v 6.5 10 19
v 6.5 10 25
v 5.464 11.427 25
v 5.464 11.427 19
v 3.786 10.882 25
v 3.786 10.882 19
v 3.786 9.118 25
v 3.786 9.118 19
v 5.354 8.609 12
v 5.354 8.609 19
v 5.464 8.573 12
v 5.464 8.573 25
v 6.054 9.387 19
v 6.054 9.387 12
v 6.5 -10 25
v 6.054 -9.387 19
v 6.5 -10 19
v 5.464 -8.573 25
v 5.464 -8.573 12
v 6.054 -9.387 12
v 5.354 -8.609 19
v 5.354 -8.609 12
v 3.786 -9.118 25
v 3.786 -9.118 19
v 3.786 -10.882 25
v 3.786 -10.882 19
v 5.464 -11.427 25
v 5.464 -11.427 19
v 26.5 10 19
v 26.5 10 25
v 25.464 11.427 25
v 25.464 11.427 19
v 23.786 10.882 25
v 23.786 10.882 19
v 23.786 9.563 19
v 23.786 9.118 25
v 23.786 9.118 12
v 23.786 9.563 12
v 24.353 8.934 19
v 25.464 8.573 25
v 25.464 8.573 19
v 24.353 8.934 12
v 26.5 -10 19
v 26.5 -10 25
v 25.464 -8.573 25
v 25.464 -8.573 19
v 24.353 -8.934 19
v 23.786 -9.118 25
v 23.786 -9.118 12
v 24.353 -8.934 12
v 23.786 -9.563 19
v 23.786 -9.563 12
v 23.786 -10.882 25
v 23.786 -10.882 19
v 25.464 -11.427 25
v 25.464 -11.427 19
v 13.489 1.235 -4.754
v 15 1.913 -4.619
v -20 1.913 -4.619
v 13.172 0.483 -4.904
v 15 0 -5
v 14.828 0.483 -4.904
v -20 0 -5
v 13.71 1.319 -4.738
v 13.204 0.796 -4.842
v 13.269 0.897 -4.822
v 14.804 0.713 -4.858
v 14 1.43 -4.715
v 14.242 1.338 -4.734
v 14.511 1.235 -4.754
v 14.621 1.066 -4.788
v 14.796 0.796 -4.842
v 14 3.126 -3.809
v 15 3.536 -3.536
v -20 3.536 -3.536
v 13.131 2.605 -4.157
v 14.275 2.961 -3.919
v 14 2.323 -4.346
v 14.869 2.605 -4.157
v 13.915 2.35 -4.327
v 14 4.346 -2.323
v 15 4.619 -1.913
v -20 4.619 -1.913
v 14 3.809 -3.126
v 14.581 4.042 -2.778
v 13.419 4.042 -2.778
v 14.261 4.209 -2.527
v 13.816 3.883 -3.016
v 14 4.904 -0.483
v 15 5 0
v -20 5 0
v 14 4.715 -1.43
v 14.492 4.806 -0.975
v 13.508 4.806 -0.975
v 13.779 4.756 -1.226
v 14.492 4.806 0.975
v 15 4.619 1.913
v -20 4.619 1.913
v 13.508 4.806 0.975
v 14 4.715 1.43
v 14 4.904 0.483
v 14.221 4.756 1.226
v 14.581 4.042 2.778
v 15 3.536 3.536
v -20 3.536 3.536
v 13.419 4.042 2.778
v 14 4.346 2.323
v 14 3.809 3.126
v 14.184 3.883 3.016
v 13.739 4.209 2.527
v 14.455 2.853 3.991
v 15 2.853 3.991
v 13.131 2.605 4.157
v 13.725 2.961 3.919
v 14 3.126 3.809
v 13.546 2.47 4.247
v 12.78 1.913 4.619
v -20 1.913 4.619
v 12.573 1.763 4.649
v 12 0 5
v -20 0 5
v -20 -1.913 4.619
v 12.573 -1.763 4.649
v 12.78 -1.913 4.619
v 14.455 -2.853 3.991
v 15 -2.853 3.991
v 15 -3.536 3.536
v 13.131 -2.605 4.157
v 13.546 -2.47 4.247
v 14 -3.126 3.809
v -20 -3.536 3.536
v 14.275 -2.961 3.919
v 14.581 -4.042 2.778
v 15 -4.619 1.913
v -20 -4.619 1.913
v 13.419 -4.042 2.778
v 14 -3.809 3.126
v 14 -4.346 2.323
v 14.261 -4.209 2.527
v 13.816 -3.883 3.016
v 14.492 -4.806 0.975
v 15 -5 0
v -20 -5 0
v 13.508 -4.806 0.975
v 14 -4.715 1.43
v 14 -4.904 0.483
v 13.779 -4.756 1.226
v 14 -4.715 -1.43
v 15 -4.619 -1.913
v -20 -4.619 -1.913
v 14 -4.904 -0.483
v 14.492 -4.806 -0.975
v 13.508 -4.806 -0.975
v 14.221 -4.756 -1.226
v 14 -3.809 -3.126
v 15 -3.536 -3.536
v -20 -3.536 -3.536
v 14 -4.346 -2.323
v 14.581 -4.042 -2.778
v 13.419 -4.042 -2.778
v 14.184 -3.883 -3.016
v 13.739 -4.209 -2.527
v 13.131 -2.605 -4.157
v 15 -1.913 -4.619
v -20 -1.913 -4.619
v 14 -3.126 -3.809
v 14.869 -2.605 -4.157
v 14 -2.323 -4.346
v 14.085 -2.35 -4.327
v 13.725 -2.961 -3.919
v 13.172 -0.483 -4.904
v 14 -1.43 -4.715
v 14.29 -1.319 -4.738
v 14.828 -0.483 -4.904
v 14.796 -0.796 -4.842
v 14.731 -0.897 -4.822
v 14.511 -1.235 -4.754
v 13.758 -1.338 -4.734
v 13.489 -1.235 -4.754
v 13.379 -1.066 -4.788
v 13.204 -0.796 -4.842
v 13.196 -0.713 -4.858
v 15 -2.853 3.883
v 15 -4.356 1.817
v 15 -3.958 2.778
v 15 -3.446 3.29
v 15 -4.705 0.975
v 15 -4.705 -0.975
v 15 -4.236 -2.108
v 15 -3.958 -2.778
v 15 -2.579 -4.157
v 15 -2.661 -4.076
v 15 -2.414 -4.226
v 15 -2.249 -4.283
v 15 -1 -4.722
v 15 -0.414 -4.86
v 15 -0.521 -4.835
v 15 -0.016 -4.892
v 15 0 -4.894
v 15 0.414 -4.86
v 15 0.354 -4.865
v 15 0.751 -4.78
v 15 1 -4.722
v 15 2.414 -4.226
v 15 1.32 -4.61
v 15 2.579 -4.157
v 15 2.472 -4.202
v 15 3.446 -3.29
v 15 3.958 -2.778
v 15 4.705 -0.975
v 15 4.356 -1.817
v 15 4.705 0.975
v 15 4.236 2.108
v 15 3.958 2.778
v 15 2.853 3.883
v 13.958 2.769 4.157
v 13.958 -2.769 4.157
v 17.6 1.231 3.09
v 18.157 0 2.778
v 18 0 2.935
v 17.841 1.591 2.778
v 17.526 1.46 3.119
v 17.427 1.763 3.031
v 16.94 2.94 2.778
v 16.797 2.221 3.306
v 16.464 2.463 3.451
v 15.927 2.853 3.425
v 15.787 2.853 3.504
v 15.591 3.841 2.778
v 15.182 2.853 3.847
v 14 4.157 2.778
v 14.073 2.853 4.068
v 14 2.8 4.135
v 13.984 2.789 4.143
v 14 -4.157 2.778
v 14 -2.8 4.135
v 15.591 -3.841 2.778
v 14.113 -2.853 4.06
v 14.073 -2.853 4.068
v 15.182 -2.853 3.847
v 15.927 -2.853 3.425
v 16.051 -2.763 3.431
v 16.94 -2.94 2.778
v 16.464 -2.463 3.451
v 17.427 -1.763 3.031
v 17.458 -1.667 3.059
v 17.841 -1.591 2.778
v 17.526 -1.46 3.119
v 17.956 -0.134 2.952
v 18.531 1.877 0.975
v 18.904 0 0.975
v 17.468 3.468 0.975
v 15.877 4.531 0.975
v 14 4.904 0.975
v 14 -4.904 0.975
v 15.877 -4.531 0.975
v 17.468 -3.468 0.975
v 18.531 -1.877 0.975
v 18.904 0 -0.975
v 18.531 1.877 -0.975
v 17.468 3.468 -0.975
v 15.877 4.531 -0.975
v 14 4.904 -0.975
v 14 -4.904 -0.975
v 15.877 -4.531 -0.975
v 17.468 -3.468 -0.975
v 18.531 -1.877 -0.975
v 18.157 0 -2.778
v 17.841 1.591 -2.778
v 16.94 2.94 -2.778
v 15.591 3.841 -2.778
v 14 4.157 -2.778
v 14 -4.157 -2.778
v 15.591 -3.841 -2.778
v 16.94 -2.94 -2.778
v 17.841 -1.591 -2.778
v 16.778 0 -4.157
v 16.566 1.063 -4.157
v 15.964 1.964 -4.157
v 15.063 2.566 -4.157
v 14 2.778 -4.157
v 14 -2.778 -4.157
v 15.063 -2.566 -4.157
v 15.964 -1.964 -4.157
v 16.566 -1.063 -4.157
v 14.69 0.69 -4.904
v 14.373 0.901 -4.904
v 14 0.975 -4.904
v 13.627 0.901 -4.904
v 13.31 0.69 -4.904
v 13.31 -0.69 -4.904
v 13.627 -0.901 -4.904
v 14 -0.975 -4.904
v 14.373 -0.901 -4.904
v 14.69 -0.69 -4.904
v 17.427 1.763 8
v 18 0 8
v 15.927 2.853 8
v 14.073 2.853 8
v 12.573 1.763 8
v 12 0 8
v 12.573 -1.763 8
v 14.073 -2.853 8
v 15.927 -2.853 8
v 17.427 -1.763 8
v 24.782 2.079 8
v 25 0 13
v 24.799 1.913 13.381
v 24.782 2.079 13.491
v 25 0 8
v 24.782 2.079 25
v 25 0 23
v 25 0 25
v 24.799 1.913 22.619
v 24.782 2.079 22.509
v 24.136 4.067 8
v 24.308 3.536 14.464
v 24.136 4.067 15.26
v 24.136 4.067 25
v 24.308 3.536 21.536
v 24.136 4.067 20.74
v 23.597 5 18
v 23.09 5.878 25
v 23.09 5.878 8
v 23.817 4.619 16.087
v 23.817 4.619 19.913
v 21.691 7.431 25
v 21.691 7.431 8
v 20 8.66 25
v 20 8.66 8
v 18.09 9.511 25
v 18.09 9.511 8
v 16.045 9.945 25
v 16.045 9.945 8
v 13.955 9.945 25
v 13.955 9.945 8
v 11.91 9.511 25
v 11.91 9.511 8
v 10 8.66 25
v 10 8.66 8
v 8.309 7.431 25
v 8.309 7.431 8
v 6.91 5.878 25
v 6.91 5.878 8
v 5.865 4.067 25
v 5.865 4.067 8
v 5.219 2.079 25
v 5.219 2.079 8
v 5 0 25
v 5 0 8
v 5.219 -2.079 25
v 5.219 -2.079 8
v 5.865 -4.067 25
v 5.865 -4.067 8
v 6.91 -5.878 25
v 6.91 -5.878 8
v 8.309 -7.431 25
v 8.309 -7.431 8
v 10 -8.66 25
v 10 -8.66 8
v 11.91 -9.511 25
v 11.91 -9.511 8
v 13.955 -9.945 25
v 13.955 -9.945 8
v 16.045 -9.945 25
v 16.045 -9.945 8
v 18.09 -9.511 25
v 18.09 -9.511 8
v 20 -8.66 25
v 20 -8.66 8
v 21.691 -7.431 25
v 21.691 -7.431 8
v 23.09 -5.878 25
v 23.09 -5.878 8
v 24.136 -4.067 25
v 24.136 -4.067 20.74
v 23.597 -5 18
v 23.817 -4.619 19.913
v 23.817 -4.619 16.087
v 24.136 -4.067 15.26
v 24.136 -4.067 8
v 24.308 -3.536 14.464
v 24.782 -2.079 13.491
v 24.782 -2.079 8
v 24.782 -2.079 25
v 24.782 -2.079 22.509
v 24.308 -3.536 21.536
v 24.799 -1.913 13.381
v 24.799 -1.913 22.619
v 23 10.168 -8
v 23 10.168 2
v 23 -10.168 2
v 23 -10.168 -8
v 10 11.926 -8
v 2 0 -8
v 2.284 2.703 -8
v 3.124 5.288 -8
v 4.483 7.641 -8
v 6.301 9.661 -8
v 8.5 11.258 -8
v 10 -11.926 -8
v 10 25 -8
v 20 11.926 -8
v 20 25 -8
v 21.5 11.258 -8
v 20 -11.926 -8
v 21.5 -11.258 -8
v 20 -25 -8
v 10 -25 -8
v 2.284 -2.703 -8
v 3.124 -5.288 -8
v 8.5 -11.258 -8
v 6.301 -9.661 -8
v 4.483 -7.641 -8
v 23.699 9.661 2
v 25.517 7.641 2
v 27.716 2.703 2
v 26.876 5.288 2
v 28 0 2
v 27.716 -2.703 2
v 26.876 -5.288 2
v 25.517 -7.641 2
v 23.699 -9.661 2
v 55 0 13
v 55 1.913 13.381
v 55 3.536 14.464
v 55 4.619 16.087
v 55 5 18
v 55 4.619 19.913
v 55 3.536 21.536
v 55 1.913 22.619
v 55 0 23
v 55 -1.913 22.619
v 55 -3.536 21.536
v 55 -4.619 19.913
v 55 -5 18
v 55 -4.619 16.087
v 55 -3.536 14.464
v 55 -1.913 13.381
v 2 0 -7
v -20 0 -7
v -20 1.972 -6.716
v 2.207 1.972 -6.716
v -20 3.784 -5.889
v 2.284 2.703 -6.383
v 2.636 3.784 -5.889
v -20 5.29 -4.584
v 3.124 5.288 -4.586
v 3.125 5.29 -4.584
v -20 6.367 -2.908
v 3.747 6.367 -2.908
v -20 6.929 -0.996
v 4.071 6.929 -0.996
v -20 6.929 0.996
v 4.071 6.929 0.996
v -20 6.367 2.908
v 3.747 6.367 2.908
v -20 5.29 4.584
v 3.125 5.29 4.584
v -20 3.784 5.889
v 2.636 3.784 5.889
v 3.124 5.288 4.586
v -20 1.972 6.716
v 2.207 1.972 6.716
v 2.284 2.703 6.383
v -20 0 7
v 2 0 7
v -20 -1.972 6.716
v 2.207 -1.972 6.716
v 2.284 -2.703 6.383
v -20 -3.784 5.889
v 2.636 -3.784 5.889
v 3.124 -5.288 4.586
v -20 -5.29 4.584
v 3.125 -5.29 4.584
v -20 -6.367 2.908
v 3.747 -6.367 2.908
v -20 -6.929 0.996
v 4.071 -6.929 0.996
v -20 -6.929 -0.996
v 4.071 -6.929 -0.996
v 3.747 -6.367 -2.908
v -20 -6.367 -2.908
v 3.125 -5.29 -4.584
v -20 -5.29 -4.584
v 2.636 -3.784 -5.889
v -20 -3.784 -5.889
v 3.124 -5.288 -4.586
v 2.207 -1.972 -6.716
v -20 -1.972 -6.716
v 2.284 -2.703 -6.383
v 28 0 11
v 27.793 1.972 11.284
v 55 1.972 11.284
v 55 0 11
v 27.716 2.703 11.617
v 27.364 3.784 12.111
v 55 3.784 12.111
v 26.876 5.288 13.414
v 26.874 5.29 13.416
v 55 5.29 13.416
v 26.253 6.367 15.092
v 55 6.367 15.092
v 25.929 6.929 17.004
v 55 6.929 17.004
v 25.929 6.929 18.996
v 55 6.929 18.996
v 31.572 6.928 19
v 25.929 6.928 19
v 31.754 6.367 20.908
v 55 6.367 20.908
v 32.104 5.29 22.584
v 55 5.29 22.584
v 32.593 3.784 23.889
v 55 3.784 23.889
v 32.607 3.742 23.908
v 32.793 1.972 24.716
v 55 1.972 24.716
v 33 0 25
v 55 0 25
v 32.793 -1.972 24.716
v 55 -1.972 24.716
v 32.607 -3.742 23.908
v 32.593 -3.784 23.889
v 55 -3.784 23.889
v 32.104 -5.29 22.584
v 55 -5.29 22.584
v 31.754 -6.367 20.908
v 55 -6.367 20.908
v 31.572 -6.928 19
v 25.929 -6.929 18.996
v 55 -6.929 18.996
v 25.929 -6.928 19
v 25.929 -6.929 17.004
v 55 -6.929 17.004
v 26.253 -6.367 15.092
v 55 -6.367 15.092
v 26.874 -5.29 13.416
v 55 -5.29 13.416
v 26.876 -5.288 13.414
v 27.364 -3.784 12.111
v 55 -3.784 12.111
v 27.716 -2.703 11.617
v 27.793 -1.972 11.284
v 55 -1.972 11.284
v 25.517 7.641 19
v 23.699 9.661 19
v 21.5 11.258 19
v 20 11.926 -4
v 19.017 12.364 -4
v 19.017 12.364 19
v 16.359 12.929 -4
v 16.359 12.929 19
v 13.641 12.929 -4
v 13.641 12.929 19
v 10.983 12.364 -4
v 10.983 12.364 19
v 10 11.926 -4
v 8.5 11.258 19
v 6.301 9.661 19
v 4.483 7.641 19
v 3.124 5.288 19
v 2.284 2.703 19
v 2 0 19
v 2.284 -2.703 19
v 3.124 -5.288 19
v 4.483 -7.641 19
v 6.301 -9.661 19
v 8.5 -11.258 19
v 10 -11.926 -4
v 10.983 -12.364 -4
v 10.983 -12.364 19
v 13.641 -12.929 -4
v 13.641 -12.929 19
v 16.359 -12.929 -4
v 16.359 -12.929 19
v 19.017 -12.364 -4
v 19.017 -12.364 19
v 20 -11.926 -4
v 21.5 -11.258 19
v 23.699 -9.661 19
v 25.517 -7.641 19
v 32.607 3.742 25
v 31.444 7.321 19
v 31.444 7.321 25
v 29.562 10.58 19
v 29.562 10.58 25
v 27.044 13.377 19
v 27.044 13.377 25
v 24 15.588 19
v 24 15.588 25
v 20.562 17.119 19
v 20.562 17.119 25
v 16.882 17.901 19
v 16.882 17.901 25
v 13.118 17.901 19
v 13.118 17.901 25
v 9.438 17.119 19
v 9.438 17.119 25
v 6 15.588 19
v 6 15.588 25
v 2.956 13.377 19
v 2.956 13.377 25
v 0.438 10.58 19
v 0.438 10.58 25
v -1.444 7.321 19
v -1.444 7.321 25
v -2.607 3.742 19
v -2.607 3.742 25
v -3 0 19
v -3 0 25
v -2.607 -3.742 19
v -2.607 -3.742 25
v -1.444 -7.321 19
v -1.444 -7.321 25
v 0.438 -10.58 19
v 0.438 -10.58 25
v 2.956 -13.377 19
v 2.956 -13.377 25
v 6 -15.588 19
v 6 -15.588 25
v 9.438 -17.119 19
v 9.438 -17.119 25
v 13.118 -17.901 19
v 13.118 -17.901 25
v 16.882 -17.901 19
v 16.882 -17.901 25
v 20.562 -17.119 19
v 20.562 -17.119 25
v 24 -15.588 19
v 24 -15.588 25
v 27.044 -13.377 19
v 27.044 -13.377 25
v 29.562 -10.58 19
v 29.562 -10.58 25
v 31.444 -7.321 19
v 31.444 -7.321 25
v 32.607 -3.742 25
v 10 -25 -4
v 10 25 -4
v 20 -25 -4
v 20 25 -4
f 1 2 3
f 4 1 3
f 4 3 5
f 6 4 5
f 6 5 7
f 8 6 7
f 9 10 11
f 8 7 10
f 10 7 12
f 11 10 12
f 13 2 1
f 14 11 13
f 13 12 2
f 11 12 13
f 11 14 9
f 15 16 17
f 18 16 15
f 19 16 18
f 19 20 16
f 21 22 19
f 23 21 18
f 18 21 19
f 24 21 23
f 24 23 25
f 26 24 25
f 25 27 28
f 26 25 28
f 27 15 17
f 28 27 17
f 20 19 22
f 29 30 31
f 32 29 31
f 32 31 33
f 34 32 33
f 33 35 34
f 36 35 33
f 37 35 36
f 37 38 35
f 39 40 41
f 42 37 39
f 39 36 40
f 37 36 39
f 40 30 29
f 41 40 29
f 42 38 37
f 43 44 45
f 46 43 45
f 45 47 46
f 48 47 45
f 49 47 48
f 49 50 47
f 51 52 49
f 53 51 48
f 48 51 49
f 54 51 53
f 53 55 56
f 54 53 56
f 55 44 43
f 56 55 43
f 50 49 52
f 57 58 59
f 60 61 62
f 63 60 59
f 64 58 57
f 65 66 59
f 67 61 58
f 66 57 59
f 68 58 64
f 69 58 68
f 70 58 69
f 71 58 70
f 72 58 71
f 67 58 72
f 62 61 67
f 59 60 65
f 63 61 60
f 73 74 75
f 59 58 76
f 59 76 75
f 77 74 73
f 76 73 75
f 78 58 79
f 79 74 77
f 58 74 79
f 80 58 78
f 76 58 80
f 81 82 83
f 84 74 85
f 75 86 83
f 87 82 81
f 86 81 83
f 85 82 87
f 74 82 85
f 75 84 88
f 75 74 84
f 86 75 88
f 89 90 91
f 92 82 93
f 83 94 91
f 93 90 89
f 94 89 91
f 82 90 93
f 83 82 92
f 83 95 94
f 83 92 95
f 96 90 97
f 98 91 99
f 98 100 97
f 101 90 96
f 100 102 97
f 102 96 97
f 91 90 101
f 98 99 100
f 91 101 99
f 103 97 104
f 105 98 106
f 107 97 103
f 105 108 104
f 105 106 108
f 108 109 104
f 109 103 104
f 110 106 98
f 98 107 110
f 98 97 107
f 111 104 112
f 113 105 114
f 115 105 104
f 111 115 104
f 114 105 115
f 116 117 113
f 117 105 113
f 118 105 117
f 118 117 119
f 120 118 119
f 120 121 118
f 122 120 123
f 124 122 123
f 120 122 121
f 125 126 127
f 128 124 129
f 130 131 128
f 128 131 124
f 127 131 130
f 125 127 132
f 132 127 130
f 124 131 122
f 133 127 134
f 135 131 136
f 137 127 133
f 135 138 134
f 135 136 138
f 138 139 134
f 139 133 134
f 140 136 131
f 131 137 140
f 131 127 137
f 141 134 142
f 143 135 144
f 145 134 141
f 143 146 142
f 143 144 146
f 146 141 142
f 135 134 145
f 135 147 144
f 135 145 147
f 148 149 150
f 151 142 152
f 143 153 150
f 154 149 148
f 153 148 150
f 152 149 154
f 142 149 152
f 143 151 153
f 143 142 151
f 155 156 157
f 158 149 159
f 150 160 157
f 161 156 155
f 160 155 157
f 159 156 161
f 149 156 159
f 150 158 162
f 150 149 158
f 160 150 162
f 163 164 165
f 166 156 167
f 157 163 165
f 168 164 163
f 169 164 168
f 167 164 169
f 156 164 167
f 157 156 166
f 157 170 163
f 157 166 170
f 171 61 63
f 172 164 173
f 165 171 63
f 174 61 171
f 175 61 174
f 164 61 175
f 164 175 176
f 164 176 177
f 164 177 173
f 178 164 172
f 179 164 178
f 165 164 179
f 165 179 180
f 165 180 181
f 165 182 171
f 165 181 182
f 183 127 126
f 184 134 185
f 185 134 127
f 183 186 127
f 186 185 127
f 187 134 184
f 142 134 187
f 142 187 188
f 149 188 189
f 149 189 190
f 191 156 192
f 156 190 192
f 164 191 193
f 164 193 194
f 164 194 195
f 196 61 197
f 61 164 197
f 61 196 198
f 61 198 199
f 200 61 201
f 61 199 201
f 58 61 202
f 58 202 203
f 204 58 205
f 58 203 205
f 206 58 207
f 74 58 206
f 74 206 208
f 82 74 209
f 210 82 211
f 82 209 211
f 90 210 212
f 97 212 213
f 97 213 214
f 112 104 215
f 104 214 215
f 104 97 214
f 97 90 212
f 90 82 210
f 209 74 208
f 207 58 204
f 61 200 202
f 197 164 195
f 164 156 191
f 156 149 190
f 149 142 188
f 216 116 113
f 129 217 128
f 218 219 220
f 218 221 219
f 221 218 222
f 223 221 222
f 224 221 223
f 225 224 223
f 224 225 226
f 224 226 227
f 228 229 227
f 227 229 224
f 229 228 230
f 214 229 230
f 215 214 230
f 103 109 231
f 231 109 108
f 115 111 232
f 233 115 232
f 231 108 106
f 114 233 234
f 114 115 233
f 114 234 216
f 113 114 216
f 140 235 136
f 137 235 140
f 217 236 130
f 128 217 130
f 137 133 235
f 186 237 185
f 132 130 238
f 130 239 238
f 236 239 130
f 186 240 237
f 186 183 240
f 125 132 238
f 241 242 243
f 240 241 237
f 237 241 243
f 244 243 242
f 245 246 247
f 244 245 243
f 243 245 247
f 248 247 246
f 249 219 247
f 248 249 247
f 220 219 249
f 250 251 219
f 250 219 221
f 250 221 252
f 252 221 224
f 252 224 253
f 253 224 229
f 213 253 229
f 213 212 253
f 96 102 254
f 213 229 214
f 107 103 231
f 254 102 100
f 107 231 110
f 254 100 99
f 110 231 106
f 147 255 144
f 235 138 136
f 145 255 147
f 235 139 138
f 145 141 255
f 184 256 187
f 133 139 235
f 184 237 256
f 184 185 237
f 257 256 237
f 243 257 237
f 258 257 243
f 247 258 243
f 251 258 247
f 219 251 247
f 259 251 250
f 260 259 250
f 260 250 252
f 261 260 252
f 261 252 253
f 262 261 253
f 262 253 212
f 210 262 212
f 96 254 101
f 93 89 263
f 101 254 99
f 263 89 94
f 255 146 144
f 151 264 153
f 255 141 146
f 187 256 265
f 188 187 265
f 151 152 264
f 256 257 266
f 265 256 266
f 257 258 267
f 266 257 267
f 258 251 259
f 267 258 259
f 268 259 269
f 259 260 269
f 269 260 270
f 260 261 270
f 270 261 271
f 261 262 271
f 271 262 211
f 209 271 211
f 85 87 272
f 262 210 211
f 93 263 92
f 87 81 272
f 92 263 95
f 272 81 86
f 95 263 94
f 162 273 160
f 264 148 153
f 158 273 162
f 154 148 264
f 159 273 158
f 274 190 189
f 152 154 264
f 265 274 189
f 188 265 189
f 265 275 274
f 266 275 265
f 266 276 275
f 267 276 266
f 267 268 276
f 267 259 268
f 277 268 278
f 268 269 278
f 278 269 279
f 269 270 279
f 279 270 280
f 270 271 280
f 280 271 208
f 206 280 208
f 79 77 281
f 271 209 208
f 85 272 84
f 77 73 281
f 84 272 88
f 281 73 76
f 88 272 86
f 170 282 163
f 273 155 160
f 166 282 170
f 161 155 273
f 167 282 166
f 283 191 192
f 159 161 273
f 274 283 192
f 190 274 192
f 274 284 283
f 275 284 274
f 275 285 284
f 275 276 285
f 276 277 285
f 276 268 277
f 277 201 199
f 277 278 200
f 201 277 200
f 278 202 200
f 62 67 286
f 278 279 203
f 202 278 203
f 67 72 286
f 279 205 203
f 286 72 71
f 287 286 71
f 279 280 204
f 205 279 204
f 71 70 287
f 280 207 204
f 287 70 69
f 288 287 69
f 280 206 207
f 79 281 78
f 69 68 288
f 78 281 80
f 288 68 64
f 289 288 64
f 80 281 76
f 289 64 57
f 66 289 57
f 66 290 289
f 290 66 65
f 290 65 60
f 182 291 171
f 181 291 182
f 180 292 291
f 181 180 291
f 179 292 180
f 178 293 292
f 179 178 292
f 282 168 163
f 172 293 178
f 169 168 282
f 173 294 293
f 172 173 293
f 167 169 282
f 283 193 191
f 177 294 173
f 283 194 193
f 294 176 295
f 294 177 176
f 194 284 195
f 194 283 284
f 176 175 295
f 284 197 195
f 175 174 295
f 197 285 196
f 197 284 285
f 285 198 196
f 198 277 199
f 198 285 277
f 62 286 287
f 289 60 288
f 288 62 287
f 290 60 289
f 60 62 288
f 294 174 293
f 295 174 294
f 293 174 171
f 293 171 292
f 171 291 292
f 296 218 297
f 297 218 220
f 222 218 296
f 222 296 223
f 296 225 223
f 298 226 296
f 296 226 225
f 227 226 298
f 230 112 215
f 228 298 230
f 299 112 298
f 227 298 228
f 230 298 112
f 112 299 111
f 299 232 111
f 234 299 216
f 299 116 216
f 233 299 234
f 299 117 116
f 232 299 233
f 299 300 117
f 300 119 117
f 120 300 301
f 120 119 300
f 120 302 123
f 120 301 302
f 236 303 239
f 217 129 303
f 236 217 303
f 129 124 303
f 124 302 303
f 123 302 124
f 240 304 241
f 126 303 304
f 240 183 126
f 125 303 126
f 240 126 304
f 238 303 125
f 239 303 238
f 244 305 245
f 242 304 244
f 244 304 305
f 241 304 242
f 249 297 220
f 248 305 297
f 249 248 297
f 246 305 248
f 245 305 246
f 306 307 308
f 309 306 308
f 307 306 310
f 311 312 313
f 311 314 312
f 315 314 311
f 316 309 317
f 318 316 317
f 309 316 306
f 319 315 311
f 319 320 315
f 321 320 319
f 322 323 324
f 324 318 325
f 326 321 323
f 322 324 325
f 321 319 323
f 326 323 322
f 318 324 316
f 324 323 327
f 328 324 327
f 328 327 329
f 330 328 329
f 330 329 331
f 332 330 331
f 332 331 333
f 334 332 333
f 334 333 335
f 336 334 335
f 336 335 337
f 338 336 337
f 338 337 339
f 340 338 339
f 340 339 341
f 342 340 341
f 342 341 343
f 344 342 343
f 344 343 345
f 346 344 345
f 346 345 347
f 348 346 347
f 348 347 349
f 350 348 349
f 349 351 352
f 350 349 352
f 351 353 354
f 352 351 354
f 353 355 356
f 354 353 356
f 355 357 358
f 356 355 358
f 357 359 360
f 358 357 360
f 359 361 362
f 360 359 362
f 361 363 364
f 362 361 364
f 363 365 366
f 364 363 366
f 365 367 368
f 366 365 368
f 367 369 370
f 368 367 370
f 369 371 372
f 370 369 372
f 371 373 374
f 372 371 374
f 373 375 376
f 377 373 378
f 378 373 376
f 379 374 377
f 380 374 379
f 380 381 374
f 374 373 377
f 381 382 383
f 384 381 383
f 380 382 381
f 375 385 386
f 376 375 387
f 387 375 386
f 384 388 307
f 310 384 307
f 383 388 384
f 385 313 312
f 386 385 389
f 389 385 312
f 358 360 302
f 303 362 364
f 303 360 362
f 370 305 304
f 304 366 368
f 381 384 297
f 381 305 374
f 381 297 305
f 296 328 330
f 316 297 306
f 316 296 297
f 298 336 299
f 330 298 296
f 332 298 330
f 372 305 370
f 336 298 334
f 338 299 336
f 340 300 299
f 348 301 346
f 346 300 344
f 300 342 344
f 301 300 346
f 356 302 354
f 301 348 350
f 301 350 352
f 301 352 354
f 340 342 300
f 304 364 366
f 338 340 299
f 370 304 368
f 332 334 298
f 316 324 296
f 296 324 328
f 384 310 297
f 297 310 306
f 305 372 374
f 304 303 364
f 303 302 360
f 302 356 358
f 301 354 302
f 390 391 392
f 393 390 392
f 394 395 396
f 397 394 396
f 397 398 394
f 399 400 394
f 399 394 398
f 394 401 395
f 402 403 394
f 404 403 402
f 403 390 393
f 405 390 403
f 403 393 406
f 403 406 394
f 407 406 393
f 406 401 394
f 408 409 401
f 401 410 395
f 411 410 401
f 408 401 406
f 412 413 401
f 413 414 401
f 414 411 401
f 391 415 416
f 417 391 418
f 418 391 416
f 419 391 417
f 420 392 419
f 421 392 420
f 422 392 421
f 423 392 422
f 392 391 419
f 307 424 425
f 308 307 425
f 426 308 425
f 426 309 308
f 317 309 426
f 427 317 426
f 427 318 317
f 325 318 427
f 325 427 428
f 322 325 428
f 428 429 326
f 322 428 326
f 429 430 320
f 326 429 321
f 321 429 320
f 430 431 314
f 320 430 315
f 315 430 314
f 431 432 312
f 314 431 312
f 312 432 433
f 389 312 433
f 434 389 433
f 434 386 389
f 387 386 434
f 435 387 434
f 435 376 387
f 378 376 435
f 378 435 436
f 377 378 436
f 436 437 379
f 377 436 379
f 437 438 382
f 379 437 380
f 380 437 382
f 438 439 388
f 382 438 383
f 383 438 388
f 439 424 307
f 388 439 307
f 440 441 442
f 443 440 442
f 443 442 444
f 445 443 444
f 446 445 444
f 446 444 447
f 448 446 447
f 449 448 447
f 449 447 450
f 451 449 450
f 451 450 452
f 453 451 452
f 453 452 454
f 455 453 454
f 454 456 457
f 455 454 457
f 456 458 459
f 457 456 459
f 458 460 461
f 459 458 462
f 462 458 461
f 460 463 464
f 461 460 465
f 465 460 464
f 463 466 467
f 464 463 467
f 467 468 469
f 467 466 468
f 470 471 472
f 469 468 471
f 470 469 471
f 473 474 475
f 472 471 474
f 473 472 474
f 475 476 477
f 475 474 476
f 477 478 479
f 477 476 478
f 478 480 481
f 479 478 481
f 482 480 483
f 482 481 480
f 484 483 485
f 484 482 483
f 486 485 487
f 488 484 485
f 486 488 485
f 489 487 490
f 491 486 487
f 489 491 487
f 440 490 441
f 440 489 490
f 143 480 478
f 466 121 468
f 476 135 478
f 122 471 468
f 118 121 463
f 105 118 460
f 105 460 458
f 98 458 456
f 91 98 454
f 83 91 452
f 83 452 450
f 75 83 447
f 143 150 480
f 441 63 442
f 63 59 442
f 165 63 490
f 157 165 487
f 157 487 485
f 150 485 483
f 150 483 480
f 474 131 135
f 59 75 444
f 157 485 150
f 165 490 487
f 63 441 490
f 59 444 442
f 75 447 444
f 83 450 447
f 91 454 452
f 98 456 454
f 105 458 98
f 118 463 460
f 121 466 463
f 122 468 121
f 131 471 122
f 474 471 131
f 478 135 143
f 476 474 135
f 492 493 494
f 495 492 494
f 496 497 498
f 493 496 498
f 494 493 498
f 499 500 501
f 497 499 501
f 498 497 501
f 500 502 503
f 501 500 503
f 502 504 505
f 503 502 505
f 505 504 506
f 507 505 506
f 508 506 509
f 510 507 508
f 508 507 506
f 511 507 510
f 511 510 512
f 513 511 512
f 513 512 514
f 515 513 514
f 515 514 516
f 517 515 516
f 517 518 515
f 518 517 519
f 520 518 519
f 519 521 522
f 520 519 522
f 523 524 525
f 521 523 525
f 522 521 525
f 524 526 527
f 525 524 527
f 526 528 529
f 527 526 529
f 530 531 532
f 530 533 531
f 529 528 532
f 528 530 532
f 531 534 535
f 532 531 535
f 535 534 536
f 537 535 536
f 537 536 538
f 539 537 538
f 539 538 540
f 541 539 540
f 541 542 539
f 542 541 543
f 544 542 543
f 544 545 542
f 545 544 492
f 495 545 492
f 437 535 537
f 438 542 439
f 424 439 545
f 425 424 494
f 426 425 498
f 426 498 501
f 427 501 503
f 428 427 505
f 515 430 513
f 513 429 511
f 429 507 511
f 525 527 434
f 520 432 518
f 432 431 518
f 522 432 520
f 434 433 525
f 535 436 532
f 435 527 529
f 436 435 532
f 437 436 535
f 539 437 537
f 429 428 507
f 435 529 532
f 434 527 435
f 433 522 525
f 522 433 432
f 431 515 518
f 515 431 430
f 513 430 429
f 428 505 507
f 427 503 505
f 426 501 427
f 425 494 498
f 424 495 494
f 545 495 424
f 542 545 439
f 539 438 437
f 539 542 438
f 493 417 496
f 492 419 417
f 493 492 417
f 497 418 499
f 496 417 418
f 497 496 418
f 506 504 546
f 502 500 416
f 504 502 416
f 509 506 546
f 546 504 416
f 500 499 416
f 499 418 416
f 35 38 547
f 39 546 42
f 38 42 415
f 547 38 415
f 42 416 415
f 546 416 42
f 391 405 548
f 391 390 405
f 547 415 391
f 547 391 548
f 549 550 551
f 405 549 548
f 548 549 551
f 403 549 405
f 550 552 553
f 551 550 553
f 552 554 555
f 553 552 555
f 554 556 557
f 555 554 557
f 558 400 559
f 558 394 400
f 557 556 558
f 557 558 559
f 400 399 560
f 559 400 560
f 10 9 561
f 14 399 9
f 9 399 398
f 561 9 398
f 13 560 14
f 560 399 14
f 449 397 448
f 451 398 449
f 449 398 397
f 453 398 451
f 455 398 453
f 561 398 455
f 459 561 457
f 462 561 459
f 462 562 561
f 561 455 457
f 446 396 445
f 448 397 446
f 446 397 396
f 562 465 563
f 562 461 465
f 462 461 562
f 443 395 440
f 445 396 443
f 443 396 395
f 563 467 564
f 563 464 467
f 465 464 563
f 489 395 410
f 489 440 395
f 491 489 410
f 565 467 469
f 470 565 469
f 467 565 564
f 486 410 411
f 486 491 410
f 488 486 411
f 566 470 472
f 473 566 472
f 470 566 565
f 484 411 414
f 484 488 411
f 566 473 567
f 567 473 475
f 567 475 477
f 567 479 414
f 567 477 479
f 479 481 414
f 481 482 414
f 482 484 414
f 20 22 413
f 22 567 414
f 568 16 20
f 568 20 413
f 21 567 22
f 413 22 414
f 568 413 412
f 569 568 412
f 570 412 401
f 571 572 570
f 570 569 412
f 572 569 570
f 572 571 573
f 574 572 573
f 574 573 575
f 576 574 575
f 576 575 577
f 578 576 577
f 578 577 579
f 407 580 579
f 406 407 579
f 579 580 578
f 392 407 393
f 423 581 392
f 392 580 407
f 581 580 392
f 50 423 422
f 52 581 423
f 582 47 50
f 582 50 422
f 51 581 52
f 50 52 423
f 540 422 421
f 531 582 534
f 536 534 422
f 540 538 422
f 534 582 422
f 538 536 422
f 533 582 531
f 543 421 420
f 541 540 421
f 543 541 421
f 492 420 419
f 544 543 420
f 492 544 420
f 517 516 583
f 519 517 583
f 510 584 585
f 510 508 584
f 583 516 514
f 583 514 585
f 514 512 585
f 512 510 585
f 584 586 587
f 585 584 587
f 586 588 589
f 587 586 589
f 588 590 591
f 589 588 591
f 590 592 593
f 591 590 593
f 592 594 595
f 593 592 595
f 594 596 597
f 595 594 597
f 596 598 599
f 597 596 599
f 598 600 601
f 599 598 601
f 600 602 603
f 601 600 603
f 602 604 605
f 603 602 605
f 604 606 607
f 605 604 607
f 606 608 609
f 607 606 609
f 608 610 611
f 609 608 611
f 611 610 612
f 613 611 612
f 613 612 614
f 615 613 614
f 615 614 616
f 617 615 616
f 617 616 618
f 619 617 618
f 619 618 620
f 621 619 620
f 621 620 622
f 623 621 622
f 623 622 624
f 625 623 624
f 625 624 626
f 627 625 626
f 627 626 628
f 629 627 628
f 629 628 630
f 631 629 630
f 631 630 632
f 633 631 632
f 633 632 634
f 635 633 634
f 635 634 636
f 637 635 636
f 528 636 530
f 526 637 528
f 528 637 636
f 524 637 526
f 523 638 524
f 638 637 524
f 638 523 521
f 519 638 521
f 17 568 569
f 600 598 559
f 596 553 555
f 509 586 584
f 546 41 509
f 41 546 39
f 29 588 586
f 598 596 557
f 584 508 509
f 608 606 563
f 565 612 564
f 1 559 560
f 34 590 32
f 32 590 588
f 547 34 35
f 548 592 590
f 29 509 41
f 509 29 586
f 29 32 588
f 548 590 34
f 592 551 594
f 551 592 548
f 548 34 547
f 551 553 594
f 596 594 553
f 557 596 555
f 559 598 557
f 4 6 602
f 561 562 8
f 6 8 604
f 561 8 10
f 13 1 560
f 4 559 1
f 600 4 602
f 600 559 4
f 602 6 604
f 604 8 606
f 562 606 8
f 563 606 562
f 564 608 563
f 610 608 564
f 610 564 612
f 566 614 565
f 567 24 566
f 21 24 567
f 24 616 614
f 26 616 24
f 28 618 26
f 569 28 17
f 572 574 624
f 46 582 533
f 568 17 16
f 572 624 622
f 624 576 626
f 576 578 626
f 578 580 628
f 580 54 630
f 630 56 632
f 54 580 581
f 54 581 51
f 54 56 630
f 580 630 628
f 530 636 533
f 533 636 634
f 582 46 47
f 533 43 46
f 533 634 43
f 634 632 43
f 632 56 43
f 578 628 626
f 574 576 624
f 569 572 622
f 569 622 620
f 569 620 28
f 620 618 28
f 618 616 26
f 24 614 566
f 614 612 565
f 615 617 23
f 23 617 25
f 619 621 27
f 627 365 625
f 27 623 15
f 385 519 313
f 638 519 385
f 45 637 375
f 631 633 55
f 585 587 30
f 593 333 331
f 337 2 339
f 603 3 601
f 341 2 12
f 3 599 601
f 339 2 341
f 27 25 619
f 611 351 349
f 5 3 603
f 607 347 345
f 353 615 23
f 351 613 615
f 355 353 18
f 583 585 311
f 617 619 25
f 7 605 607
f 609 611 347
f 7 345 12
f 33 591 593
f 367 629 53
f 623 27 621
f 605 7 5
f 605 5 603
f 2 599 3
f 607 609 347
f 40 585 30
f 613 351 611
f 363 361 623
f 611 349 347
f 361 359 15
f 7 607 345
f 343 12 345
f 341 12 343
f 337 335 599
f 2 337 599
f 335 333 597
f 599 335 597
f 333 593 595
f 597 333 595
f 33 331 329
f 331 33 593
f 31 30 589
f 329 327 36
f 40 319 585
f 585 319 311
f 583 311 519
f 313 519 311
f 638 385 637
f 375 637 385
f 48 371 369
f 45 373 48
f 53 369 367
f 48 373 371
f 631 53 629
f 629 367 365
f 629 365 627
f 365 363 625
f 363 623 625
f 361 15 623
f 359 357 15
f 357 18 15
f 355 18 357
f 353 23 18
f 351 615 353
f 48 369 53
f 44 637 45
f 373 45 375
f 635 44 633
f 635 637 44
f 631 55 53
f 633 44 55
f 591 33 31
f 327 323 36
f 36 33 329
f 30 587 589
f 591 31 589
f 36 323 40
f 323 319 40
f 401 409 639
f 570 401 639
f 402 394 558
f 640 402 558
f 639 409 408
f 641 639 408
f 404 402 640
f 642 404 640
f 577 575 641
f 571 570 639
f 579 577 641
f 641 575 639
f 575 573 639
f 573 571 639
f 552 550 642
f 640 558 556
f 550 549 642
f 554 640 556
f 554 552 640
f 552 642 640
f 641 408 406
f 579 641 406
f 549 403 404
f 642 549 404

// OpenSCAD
module holes() {
union(){
    //entry pipe
    translate([-25,0,0])rotate([0,90,0]) cylinder(r=5,h=40);
    translate([14,0,0]) sphere(r=5,center = true);
    //below marble
    translate([15,0,0])cylinder(r=3,h=10);
    //above marble
    translate([15,0,8])cylinder(r=10,h=20);
    //save plastic
     translate([23,-20,-8])cube([15,40,10]);
  
    //exit pipe
    translate([  10,0,18])rotate([0,90,0]) cylinder(r=5,h=47);
   
     //drill holes
      dr = 10;
       translate([15,0,0])
       rotate([0,0,0])
       {
        translate([-dr,dr,12])cylinder(r=1.5,h=40);
        translate([-dr,-dr,12])cylinder(r=1.5,h=40);
        translate([dr,dr,12])cylinder(r=1.5,h=40);
        translate([dr,-dr,12])cylinder(r=1.5,h=40);
        }
    }
};


//holes();

module solid() {
union() {
    //entry pipe
   translate([-20,0,0])rotate([0,90,0]) cylinder(r=7,h=30);
   //exit pipe
    translate([  10,0,18])rotate([0,90,0]) cylinder(r=7,h=45);
   //main body
    translate([15,0,-8])cylinder(r=13,h=32);
    //main body top bit
   translate([15,0,19])cylinder(r=18,h=6);
   // top hat
  //  translate([15,0,30])cylinder(r=18,h=6);
   //screw base
        translate([15,0,-6]) cube([10,50,4],center=true);
   
    }
}

difference() {
    solid();
    holes();
}
